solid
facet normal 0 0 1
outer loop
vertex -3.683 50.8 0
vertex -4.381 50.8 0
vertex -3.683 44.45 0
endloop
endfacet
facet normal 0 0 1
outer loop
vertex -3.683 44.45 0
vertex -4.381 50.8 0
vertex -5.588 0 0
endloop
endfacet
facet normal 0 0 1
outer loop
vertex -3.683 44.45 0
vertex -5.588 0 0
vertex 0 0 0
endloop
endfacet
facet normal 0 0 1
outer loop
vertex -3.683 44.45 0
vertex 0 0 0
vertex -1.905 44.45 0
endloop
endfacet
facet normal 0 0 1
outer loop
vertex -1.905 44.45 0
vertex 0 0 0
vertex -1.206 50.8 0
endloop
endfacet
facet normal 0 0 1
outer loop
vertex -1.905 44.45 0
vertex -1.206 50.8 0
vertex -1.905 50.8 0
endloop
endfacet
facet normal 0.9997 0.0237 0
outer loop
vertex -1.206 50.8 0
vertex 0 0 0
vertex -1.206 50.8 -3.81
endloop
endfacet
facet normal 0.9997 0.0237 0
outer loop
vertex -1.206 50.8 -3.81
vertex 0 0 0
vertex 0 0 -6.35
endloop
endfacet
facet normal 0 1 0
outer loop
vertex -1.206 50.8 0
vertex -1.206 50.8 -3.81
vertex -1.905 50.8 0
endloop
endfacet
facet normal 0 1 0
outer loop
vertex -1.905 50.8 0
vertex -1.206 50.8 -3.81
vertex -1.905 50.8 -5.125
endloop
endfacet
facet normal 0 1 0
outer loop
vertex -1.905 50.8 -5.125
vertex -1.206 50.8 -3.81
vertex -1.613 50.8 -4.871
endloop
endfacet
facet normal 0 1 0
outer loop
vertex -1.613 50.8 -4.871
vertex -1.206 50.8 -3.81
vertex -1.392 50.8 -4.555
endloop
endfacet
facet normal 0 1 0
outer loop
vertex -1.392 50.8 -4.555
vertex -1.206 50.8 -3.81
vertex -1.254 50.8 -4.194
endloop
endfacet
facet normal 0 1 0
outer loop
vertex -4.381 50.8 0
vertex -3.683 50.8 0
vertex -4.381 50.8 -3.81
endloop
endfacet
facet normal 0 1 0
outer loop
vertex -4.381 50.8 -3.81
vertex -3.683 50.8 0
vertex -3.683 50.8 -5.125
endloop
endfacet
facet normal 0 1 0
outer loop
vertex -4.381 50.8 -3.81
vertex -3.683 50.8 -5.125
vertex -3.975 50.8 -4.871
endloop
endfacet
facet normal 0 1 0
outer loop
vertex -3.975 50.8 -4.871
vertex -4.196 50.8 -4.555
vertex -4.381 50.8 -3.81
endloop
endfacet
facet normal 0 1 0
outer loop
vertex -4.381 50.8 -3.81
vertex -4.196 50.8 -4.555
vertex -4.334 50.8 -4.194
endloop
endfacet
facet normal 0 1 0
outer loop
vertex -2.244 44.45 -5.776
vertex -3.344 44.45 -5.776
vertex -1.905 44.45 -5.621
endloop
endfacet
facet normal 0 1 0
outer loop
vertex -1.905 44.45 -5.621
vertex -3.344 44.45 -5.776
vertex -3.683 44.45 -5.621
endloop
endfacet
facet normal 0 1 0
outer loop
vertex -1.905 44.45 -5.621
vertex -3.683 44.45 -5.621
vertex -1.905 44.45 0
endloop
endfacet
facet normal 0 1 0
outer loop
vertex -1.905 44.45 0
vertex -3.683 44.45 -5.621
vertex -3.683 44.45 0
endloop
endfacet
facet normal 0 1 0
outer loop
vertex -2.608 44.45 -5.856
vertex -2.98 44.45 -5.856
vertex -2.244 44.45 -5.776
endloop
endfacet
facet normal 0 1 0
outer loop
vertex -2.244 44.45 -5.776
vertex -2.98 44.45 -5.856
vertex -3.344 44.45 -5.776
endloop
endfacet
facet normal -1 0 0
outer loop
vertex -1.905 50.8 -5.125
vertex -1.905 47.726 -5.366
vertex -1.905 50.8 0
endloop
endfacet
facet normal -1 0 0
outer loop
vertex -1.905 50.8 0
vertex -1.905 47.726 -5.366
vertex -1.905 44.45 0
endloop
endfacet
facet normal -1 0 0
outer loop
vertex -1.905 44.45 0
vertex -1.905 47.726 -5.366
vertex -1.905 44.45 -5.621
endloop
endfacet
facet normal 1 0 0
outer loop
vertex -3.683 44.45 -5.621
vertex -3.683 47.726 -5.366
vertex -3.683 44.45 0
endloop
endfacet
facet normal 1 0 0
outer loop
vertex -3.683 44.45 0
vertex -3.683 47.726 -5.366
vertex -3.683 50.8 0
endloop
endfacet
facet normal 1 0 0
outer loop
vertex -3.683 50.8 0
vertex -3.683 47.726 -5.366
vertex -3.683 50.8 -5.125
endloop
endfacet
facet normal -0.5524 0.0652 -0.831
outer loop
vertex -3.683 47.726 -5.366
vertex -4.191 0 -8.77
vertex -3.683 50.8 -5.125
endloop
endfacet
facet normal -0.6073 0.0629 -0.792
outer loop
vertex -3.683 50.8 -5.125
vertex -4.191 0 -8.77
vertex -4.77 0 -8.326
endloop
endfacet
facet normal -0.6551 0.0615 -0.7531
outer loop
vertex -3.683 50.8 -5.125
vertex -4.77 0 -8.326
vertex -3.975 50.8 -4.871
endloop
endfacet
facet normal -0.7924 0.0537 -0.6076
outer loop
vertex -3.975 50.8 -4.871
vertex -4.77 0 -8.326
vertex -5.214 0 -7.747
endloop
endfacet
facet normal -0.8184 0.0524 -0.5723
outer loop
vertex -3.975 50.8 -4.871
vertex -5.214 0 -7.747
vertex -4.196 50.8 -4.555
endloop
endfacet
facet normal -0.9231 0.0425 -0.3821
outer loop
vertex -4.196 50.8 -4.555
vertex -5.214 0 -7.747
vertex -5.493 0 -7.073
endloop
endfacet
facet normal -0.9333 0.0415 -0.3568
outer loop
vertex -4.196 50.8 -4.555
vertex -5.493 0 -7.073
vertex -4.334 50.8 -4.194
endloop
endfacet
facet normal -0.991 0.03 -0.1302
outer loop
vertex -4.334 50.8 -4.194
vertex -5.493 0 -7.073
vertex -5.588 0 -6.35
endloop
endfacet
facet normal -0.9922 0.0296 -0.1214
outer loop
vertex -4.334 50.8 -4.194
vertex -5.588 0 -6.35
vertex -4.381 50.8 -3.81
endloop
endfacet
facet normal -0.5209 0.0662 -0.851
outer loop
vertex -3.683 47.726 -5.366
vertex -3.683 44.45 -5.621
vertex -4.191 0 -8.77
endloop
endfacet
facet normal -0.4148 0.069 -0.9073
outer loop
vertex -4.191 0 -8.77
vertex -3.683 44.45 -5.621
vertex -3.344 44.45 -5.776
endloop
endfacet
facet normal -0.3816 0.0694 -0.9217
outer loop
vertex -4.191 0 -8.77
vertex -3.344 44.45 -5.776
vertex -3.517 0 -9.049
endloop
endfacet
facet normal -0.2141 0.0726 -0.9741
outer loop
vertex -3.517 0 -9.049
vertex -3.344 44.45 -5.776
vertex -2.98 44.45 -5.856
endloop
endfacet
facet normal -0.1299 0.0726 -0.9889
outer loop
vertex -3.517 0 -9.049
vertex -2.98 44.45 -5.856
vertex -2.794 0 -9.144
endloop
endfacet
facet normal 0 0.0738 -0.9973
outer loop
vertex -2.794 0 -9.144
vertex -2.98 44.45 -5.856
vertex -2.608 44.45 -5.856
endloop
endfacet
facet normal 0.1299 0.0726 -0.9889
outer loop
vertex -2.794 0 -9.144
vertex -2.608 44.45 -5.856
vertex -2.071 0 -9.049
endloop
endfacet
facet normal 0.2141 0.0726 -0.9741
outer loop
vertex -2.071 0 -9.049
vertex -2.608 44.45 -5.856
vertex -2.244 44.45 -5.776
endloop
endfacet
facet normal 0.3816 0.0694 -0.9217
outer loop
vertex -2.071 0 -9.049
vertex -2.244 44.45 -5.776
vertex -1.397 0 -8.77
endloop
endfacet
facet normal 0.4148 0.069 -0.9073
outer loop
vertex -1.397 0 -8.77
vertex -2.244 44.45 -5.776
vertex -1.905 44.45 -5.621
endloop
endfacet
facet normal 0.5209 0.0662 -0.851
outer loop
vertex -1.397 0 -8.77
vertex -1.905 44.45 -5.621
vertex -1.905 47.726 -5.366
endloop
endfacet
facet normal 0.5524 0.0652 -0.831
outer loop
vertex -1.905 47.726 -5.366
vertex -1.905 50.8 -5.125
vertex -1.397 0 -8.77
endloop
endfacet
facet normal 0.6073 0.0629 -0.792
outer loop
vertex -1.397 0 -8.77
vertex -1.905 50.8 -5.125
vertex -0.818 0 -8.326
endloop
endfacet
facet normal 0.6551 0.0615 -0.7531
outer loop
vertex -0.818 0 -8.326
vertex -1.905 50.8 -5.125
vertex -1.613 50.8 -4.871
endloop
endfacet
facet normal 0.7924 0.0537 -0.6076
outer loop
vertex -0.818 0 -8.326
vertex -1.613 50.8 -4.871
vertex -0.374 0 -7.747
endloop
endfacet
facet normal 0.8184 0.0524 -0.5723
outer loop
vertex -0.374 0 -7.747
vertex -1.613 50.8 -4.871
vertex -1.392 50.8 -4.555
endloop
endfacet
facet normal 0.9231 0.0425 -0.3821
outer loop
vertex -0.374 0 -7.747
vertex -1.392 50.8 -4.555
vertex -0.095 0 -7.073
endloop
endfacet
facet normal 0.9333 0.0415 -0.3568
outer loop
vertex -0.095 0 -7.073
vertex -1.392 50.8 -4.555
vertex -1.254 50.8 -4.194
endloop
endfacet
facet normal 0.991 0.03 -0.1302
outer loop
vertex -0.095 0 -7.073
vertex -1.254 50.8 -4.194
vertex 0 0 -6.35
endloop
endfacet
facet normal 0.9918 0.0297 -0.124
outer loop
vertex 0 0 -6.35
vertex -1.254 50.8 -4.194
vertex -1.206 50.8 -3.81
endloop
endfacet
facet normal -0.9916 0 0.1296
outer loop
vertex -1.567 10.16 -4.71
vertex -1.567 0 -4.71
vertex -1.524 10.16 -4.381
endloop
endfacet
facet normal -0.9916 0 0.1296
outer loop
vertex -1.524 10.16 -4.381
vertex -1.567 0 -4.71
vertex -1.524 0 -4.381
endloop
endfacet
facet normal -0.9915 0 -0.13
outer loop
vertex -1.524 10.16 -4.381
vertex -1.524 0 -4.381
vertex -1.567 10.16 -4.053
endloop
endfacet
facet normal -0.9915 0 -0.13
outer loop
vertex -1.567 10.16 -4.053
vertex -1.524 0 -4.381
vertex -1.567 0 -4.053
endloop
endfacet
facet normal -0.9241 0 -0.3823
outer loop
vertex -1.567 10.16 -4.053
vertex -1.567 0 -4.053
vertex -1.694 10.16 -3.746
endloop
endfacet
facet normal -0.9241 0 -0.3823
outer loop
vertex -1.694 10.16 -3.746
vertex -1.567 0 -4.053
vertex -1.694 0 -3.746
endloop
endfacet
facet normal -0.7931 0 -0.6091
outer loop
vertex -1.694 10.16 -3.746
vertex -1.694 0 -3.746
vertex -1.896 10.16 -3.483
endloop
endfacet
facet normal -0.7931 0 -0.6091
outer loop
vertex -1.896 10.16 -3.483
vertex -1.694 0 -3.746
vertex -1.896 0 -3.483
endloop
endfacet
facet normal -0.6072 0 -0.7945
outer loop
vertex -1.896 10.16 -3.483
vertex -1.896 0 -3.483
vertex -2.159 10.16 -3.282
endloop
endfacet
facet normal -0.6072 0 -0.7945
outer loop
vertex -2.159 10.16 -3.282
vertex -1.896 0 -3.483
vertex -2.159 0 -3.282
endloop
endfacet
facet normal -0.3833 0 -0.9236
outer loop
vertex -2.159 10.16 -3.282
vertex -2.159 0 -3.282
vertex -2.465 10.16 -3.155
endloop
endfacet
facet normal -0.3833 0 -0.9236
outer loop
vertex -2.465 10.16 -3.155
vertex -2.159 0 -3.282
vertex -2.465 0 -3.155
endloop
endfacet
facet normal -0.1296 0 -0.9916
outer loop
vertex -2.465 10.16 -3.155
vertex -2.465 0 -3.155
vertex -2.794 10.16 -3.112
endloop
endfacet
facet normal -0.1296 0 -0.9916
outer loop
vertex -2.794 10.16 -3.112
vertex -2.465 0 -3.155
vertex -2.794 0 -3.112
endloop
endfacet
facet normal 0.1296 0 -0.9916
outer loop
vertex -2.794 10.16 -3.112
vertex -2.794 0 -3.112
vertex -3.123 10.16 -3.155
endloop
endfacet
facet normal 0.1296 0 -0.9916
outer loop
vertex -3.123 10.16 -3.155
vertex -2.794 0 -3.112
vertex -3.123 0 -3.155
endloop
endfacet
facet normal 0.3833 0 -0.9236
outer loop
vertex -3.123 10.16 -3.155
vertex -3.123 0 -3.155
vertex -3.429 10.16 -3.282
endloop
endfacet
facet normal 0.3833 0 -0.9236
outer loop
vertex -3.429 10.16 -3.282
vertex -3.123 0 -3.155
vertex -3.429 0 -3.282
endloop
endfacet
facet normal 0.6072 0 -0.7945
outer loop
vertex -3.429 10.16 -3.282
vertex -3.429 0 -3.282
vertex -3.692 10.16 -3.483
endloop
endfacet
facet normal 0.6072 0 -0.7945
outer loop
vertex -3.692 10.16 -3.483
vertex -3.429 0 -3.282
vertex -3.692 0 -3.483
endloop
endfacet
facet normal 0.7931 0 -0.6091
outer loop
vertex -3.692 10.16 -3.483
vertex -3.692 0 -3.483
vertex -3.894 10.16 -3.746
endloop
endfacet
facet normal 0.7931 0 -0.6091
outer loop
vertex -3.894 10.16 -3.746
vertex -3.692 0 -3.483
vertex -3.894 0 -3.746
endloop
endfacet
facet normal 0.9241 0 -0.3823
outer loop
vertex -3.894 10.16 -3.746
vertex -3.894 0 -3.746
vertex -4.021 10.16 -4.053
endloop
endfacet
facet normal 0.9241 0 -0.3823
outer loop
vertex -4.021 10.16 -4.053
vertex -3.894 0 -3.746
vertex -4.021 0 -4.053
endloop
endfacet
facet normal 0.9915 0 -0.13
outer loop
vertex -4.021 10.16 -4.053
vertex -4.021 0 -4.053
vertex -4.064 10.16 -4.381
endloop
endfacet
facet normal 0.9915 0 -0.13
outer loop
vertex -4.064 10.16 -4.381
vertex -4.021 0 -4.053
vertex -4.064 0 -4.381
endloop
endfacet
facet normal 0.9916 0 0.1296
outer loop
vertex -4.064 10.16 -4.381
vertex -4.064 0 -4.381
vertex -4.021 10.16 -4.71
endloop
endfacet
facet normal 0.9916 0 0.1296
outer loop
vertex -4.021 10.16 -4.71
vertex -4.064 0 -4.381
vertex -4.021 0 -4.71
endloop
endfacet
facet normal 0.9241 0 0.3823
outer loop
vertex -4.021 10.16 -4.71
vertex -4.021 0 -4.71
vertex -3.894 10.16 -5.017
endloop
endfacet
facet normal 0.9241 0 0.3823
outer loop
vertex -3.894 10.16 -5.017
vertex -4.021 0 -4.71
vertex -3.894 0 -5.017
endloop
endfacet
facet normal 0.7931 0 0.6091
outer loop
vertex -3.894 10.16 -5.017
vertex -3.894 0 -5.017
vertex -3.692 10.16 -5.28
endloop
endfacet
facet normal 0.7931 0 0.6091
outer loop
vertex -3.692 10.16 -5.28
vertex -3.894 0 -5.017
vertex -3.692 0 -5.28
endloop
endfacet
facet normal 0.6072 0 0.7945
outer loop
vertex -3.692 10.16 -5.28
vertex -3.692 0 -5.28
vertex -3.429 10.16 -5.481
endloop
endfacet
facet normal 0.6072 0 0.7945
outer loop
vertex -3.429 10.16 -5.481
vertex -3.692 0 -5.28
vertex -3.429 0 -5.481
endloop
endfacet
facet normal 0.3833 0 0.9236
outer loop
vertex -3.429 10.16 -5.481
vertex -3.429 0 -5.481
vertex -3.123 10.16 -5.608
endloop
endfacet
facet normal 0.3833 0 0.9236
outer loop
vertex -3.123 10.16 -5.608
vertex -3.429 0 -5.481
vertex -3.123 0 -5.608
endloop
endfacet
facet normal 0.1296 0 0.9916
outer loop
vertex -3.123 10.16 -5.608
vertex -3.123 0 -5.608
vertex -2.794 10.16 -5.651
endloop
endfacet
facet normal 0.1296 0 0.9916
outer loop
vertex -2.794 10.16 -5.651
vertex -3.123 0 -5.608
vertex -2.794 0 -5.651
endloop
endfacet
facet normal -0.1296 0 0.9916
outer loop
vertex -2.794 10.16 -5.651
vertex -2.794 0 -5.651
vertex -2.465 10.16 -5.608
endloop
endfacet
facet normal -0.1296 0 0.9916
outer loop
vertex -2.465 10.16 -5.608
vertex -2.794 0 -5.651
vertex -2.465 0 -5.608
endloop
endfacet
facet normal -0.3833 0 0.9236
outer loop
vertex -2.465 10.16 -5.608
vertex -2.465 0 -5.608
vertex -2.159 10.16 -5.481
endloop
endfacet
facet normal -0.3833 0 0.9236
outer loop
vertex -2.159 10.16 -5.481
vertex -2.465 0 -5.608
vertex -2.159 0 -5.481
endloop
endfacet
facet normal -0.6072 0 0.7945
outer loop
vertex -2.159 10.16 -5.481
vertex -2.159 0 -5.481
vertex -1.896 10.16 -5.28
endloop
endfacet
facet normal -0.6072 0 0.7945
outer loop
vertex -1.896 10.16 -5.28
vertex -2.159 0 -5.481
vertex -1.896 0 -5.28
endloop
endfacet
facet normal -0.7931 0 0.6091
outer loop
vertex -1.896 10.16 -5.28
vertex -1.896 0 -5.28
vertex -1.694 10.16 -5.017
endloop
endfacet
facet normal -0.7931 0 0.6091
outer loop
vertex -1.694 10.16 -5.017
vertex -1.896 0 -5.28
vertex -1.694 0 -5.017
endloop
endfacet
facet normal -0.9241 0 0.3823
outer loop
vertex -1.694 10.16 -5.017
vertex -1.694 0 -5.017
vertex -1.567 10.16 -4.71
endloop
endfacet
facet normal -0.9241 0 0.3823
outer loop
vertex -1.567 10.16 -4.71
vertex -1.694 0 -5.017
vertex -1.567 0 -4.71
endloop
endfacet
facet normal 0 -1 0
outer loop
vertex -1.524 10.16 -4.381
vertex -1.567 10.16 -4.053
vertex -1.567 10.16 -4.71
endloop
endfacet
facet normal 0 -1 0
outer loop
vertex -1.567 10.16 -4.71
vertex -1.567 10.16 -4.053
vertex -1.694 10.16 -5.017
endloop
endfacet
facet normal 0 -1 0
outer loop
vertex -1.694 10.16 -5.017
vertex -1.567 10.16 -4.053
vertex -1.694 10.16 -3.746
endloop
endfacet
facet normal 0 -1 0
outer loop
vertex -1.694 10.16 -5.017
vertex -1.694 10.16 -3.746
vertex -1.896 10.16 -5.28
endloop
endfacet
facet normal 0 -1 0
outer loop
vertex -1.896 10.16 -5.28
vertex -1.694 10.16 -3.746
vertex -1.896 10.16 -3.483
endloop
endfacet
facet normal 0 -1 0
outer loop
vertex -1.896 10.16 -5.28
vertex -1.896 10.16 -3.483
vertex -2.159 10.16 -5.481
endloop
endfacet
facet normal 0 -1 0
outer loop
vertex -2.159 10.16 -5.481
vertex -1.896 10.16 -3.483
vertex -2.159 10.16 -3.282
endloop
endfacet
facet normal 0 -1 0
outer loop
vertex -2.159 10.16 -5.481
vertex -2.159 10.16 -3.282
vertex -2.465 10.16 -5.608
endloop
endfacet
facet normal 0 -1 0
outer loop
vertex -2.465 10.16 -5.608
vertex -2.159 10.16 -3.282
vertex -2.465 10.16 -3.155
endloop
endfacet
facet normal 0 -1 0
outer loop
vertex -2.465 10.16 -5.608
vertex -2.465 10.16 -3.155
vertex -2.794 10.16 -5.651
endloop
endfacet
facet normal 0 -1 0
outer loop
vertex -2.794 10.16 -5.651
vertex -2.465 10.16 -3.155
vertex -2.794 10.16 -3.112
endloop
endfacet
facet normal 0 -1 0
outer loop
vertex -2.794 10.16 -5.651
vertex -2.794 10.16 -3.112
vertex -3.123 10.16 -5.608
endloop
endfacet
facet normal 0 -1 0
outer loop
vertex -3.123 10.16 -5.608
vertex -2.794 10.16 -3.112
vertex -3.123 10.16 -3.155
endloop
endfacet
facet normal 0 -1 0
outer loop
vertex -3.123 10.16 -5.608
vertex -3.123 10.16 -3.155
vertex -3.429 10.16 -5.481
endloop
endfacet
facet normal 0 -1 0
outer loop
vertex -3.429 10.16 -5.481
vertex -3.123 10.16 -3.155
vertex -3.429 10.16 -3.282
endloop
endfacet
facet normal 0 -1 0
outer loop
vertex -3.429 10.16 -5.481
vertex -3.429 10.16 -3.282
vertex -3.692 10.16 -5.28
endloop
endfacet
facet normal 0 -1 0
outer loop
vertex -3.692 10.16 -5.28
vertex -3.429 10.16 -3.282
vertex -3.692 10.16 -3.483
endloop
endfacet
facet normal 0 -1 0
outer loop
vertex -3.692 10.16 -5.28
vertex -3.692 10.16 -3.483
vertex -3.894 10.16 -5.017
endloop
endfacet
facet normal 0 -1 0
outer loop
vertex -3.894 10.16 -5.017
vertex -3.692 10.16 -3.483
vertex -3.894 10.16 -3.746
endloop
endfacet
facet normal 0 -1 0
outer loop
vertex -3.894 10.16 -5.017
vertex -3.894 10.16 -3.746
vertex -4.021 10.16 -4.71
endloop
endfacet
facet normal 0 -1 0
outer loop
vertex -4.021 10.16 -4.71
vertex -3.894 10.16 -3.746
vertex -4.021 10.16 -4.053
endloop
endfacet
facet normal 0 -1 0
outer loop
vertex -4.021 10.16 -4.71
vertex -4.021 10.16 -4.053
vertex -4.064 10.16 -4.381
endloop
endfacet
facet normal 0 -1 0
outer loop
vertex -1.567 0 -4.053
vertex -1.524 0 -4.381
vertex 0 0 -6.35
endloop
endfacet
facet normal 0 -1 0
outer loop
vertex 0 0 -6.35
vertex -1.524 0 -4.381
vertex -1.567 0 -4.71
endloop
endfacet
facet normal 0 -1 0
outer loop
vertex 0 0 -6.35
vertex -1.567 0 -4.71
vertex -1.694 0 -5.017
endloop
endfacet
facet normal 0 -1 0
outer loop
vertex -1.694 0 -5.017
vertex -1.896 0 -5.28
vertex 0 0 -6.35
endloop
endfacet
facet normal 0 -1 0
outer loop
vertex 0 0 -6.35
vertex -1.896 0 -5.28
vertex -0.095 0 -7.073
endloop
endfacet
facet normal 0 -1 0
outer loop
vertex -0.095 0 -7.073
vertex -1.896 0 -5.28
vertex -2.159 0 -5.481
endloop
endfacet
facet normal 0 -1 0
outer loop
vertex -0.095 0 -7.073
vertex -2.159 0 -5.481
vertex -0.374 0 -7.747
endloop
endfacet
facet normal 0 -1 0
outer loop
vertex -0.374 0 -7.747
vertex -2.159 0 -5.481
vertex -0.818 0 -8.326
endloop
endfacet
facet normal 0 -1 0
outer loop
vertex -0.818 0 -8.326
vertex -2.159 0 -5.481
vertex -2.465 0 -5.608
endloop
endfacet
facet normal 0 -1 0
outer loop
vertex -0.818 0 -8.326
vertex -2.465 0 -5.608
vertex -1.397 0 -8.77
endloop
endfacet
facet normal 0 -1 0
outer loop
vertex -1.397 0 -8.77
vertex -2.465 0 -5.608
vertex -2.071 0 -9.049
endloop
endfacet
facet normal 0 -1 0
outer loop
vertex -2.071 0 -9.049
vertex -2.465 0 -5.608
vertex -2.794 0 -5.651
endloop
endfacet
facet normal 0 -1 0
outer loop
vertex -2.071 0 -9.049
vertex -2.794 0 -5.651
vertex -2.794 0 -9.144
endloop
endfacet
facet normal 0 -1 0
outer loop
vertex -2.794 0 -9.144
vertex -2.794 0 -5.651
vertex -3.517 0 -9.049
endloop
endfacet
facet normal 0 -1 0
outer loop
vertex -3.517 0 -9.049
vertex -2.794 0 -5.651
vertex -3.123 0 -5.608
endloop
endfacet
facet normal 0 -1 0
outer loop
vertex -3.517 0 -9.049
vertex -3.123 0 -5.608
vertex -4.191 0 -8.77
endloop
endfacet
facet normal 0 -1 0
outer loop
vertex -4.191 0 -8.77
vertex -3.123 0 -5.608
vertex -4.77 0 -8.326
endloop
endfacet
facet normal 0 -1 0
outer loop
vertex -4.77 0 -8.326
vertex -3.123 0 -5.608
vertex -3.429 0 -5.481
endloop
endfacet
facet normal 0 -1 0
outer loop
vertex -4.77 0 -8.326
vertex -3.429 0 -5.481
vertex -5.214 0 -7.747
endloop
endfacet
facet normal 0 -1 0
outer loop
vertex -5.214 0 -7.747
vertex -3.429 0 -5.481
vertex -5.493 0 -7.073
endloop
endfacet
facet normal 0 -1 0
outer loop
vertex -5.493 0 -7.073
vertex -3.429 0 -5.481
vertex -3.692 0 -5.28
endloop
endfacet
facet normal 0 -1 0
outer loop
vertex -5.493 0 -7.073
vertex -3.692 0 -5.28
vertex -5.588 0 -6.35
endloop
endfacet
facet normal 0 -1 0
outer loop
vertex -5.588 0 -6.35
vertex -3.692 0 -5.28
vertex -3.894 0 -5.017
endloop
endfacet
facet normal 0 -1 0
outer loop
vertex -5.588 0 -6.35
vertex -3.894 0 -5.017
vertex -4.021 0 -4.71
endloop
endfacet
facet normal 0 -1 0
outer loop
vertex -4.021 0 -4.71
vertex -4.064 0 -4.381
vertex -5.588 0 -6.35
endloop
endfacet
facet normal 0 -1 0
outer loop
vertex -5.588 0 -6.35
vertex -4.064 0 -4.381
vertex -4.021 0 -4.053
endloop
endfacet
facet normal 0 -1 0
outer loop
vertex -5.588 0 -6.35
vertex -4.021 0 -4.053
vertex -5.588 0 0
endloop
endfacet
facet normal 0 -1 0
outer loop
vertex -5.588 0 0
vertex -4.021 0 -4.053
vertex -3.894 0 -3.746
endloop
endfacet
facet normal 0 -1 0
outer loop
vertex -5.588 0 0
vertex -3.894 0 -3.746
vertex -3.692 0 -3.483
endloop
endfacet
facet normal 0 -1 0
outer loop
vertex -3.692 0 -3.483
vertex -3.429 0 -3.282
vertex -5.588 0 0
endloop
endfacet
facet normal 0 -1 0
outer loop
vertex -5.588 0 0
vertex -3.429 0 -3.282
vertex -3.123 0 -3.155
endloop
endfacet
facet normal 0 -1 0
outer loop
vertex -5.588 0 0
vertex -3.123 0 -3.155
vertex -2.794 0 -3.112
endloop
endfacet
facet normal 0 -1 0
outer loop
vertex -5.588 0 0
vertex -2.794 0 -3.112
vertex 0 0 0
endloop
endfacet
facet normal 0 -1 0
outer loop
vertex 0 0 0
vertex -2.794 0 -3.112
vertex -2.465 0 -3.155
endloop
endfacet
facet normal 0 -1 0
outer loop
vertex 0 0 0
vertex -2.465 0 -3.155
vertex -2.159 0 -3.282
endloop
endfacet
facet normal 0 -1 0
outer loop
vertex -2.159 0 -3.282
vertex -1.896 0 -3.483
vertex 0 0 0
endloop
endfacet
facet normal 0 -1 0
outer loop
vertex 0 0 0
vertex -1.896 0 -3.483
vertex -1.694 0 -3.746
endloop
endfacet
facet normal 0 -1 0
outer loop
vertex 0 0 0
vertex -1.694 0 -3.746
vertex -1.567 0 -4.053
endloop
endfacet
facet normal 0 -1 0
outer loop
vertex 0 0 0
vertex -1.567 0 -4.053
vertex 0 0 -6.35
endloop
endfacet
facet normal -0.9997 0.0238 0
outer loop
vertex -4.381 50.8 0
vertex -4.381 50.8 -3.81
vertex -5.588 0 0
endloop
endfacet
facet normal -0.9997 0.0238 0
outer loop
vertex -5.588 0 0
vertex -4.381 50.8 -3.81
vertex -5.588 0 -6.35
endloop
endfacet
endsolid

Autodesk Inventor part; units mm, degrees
ref_plane "YZ Plane" through (0, 0, 0) normal (1, 0, 0) x (0, 1, 0)
ref_plane "XY Plane" through (0, 0, 0) normal (0, 0, 1) x (1, 0, 0)
sketch "Sketch6" plane through (0, 0, 0) normal (0, 1, 0) x (-1, 0, 0)
  line L0 (0, 0) -> (5.588, 0)
  line L1 (5.588, 0) -> (5.588, -6.35)
  line L2 (5.588, -6.35) -> (0, -6.35)
  line L3 (0, -6.35) -> (0, 0)
  arc A0 (0, -6.35) -> (5.588, -6.35) centre (2.794, -6.35) ccw
  dimension "d25" = 5.588
  dimension "d26" = 6.35
ref_plane "Work Plane1" through (0, 50.8, 0) normal (0, 1, 0) x (-1, 0, 0)
sketch "Sketch8" plane through (0, 50.8, 0) normal (0, 1, 0) x (-1, 0, 0)
  line L0 (4.3815, 0) -> (1.2065, 0)
  line L1 (1.2065, 0) -> (1.2065, -3.81)
  line L2 (1.2065, -3.81) -> (4.3815, -3.81)
  line L3 (4.3815, -3.81) -> (4.3815, 0)
  arc A0 (1.2065, -3.81) -> (4.3815, -3.81) centre (2.794, -3.81) ccw
  point P0 (0, 0)
  dimension "d27" = 3.175
  dimension "d28" = 3.81
  dimension "d49" = 1.2065
loft "Loft1" add profiles "Sketch6", "Sketch8"
sketch "Sketch9" plane through (-5.588, 0, 0) normal (0, 0, 1) x (1, 0, 0)
  line L0 (0, 0) -> (5.588, 0) projected
  line L1 (5.588, 0) -> (4.3815, 50.8) projected
  line L2 (1.2065, 50.8) -> (4.3815, 50.8) projected
  line L3 (0, 0) -> (1.2065, 50.8) projected
  line L4 (4.3815, 50.8) -> (5.588, 0) projected
  line L5 (4.5323, 44.45) -> (1.0557, 44.45)
  line L6 (0, 0) -> (1.2065, 50.8) projected
  dimension "d34" = 6.35
extrude "Extrusion5" add sketch "Sketch9" along normal blind 38.608 contours L3 L2 L1 L5
sketch "Sketch12" plane through (-2.794, 0, -6.35) normal (0, -1, 0) x (1, 0, 0)
  circle A0 centre (0, 1.9685) radius 1.27
  arc A1 (-2.794, 0) -> (2.794, 0) centre (0, 0) ccw projected
  line L0 (0, -2.794) -> (0, 1.9685)
  point P0 (2.794, 6.35)
  dimension "d44" = 2.54
  dimension "d46" = 4.7625
extrude "Extrusion8" cut sketch "Sketch12" against normal blind 10.16
sketch "Sketch13" plane through (-5.588, 0, 0) normal (0, 0, 1) x (1, 0, 0)
  line L0 (4.3815, 50.8) -> (1.2065, 50.8) projected
  line L1 (1.2065, 50.8) -> (4.3815, 50.8) projected
  line L2 (1.0557, 44.45) -> (4.5323, 44.45) projected
  line L3 (3.683, 50.8) -> (1.905, 50.8)
  line L4 (1.905, 50.8) -> (1.905, 44.45)
  line L5 (1.905, 44.45) -> (3.683, 44.45)
  line L6 (3.683, 44.45) -> (3.683, 50.8)
  line L7 (3.683, 50.8) -> (4.3815, 50.8) construction
  line L8 (0, 0) -> (1.2065, 50.8) construction
  line L9 (1.905, 50.8) -> (1.2065, 50.8) construction
  line L10 (6.4775, 53.5114) -> (-2.6174, 53.5114)
  line L11 (-2.6174, 53.5114) -> (-2.6174, 42.707)
  line L12 (-2.6174, 42.707) -> (6.4775, 42.707)
  line L13 (6.4775, 42.707) -> (6.4775, 53.5114)
  point P0 (5.588, 0)
  dimension "d50" = 1.778
extrude "Extrusion9" cut sketch "Sketch13" against normal through all contours L6 L2 L4 L0
extrude "Extrusion10" cut sketch "Sketch13" along normal through all contours L6 L2 L4 L0 | L13 L12 L11 L10
properties part number "RudderStabilizingFins_Print1"
